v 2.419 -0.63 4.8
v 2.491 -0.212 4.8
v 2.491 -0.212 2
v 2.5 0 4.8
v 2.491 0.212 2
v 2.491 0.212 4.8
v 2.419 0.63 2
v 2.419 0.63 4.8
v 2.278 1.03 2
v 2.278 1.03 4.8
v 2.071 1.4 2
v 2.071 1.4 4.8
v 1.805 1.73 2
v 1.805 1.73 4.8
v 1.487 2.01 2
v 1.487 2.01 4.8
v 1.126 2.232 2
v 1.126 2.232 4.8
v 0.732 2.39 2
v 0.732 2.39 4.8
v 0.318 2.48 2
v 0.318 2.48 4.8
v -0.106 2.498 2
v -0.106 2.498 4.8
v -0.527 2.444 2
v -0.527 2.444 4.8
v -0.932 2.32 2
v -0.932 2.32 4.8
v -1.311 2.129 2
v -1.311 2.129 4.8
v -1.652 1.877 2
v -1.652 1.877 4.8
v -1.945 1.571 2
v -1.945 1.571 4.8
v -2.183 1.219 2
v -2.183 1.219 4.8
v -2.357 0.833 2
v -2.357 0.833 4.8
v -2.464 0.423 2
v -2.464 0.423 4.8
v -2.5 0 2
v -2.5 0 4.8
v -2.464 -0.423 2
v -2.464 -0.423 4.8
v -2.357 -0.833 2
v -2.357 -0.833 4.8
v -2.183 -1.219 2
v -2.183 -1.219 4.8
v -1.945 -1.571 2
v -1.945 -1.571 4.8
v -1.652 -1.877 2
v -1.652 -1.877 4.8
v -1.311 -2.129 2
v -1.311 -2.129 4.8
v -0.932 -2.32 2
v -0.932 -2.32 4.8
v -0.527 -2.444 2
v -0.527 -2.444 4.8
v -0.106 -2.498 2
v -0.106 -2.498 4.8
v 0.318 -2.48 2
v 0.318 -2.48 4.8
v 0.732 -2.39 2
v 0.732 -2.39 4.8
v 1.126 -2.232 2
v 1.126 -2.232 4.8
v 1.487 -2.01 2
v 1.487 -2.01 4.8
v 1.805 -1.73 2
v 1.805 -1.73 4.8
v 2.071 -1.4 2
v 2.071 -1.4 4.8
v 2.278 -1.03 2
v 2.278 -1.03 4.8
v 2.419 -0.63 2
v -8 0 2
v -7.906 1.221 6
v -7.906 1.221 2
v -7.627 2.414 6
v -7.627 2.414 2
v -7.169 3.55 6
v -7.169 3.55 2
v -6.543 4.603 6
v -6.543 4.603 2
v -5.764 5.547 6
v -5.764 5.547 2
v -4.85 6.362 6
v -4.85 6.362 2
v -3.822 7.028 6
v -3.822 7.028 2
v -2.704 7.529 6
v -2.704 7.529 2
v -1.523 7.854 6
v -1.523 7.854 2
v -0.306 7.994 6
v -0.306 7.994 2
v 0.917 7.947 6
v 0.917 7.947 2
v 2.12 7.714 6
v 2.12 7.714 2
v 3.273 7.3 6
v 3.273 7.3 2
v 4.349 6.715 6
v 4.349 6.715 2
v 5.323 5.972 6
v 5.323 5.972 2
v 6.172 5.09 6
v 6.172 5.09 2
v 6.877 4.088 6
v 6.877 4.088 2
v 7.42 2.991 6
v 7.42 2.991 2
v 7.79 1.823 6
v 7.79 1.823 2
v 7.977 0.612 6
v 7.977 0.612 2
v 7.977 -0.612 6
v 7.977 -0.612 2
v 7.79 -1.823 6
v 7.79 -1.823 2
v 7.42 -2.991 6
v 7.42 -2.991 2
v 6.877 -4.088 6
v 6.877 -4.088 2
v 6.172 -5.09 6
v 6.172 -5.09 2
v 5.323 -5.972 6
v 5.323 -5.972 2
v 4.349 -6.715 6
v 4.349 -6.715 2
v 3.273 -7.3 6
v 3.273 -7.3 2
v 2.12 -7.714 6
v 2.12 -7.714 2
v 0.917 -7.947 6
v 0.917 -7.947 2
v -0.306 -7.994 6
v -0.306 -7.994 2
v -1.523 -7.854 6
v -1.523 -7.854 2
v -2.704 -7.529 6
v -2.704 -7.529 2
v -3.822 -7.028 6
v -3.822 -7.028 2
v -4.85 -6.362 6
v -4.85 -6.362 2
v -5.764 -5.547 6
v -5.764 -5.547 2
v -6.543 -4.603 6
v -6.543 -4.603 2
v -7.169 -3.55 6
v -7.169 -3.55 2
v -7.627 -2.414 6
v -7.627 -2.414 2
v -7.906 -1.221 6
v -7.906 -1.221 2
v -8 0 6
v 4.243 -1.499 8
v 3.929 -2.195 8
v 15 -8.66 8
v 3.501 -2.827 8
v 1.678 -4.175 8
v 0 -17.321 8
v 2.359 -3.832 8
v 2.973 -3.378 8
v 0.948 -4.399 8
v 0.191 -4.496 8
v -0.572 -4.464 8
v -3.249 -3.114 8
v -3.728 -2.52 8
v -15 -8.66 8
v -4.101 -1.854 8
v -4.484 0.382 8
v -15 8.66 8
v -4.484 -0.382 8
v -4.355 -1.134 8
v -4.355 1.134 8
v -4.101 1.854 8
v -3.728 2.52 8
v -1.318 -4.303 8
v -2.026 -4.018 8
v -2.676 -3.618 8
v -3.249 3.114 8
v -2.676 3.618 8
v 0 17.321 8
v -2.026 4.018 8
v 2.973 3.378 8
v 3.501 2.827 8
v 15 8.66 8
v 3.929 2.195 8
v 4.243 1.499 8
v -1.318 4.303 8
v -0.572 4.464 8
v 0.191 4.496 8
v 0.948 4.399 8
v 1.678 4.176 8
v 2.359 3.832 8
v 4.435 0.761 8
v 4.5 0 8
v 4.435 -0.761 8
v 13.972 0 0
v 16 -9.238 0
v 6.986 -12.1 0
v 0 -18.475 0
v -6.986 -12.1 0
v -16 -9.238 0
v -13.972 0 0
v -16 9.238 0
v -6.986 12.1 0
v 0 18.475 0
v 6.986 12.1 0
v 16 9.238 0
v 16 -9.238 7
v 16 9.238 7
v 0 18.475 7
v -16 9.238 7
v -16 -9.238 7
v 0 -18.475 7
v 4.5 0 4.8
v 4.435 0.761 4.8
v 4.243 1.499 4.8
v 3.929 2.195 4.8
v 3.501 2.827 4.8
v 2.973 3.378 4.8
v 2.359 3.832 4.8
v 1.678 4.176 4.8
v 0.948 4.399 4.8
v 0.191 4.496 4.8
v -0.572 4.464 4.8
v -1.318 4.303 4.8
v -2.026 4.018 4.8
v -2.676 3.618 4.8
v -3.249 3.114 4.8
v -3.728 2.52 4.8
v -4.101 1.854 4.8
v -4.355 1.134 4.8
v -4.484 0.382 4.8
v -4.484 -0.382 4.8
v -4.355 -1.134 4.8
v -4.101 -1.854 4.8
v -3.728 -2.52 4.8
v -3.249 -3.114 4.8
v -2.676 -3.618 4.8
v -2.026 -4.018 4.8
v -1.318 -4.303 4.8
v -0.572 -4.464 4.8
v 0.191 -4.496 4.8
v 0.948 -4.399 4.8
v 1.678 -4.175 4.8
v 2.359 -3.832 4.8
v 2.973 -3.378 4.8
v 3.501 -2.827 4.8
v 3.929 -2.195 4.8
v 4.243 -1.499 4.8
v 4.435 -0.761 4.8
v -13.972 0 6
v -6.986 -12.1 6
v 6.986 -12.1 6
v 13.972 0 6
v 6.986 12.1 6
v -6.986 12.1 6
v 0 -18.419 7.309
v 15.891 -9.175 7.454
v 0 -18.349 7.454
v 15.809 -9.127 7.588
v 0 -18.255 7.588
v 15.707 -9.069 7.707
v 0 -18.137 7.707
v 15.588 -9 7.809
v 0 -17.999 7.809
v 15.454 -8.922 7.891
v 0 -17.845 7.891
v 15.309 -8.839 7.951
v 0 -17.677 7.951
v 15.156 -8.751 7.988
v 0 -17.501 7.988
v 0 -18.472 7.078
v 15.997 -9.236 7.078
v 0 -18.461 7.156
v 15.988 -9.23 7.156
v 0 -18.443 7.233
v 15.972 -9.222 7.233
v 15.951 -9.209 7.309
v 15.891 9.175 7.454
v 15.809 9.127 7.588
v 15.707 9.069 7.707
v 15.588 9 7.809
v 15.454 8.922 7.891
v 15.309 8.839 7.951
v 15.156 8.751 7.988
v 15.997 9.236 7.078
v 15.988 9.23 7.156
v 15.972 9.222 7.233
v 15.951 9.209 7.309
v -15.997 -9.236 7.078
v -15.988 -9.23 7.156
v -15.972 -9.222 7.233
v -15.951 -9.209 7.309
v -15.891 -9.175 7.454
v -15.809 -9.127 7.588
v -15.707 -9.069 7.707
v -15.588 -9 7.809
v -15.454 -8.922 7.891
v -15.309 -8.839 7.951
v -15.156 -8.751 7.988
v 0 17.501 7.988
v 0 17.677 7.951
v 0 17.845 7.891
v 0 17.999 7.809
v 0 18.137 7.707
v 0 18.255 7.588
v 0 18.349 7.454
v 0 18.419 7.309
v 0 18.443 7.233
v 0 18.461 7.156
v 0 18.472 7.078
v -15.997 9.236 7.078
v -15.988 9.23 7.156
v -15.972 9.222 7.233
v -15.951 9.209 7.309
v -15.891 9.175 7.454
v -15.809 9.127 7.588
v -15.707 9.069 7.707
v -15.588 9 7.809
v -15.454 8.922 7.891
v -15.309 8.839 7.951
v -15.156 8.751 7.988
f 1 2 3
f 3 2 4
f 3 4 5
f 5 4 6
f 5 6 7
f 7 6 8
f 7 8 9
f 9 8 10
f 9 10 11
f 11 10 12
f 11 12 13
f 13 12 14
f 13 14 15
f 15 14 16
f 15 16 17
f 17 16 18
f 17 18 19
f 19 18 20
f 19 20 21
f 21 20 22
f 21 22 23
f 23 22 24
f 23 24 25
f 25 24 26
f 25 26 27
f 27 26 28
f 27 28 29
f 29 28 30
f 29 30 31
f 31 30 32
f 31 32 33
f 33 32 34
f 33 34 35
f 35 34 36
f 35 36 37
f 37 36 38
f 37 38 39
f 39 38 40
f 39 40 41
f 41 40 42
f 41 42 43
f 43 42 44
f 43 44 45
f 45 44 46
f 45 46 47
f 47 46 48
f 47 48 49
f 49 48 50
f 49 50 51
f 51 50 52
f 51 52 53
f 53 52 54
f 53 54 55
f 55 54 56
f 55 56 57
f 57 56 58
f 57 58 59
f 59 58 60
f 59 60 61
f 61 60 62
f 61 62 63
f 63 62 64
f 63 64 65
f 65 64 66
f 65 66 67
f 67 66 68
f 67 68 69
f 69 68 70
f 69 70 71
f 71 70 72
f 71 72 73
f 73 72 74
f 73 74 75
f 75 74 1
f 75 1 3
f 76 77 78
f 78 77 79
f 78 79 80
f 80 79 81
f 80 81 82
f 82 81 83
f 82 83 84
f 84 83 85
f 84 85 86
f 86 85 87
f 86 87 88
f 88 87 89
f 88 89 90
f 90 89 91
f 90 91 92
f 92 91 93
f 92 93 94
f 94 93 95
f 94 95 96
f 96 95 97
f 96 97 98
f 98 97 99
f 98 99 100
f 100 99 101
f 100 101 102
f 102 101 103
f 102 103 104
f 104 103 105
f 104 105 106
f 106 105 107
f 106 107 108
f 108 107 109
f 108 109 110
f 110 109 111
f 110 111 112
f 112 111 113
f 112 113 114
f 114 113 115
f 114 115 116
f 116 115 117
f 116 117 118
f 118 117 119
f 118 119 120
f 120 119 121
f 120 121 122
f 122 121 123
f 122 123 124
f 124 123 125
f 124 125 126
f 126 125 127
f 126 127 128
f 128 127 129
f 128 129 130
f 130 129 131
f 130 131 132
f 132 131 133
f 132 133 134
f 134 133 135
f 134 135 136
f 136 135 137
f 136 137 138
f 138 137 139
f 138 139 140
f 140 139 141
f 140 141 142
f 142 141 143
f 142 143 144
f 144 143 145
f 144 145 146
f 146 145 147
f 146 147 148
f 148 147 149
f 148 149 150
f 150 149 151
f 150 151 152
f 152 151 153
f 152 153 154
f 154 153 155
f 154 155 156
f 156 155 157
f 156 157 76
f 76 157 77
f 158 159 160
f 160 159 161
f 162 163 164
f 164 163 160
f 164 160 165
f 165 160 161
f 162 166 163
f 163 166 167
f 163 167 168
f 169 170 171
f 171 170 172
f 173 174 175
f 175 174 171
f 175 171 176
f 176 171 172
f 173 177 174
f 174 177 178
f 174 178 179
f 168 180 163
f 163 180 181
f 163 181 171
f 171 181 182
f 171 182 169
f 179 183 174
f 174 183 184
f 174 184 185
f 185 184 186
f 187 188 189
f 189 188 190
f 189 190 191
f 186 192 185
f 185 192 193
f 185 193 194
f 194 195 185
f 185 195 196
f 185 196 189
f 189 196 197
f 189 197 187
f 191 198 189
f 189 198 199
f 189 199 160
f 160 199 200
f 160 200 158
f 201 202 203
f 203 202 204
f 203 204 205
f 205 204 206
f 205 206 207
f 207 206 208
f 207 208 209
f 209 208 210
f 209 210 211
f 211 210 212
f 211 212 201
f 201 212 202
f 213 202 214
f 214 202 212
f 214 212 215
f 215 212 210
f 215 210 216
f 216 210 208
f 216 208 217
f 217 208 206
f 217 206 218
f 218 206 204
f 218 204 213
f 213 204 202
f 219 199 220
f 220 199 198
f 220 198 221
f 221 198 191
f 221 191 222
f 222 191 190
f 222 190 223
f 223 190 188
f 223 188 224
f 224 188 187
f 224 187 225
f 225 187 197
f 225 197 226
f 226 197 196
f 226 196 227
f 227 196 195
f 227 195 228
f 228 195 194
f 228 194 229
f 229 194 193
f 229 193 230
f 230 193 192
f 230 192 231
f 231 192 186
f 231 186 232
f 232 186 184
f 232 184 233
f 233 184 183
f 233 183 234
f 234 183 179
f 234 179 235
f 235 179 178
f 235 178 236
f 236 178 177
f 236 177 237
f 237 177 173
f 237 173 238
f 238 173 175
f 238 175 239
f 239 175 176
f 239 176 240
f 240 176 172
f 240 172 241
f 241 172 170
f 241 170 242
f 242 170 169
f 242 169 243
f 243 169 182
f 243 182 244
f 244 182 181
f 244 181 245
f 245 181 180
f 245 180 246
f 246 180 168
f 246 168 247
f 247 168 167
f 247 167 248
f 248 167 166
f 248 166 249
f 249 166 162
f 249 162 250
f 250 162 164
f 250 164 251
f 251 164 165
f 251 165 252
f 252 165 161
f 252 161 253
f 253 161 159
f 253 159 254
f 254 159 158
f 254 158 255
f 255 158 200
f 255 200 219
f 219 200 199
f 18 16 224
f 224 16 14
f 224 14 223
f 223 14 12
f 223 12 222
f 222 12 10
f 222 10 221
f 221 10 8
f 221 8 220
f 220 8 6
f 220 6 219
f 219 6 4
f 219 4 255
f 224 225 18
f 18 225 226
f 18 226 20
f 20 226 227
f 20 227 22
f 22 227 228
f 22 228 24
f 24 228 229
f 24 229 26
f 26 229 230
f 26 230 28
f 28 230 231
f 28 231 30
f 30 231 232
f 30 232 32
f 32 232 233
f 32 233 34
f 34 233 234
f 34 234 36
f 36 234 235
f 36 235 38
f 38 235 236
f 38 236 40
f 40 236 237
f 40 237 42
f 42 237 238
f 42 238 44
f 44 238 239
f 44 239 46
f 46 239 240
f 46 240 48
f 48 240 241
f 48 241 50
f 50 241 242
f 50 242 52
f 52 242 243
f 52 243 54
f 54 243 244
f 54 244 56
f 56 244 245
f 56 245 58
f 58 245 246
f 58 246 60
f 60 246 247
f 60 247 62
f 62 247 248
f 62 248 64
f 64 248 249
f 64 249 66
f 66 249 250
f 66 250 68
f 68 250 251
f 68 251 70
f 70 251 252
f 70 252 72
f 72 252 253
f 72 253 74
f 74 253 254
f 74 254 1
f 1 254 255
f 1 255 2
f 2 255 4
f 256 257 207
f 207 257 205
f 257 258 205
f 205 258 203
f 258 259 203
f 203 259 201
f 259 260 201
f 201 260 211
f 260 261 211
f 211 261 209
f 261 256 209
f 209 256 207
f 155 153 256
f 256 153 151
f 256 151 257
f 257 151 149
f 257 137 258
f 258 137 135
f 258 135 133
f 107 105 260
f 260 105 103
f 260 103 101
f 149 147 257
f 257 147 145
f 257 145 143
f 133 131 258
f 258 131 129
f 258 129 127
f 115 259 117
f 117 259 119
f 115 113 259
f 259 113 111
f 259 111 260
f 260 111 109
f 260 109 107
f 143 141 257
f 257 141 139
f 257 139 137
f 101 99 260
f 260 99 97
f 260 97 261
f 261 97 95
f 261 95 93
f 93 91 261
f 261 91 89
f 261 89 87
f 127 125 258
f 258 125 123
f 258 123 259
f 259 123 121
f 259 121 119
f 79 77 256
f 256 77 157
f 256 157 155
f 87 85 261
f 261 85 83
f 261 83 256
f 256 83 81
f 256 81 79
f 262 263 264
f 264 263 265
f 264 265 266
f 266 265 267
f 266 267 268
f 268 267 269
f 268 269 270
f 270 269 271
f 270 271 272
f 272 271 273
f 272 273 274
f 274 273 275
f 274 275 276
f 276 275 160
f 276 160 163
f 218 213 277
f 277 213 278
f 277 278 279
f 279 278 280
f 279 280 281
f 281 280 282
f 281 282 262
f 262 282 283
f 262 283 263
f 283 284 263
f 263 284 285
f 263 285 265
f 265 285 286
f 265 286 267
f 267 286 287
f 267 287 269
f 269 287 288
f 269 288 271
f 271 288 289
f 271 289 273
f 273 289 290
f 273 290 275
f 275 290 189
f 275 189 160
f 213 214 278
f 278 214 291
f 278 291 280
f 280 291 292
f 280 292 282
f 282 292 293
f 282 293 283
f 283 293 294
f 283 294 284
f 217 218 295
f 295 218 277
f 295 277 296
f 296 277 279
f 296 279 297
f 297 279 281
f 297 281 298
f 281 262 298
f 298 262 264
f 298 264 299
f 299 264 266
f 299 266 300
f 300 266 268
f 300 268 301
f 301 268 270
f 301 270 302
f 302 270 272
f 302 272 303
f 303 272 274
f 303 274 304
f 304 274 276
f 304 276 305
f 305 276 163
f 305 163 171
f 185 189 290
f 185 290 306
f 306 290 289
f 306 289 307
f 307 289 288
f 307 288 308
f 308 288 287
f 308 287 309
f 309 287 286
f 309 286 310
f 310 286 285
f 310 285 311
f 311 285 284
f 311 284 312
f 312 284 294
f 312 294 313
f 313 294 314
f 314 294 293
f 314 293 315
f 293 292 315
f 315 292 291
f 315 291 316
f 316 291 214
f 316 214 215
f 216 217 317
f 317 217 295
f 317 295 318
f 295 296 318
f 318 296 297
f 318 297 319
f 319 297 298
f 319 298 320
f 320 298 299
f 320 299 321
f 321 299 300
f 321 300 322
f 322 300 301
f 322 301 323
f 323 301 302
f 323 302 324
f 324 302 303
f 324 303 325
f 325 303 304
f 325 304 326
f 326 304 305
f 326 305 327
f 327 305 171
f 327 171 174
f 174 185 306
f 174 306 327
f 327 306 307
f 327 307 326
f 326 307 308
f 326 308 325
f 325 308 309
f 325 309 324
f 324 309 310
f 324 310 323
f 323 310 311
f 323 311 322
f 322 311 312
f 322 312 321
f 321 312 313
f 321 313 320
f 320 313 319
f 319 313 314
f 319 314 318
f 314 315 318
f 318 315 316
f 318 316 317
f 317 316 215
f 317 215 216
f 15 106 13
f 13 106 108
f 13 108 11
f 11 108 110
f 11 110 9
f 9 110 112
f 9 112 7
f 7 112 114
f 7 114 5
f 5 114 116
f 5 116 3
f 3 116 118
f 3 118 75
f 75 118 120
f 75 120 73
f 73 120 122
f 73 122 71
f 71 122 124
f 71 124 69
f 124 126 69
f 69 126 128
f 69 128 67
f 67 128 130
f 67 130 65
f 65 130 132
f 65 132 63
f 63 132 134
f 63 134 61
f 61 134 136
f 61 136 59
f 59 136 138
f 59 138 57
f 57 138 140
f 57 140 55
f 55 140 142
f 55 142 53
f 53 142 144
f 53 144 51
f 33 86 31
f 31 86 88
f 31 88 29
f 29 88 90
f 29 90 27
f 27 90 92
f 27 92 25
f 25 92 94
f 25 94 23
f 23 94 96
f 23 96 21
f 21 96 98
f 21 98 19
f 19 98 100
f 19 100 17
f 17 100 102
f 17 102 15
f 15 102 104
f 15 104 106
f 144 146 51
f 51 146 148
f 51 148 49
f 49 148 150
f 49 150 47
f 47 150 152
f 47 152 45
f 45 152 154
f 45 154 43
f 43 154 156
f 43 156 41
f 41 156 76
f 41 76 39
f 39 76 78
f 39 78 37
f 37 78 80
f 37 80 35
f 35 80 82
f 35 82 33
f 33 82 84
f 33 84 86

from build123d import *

# Parameters (mm, degrees)
SKIZZE1_R                       = 2.5
AUFSATZ_LINEAR_AUSTRAGEN1_DEPTH = 8
SKIZZE2_R                       = 4.5
SCHNITT_LINEAR_AUSTRAGEN1_DEPTH = 3.2
SKIZZE3_R                       = 8
SCHNITT_LINEAR_AUSTRAGEN2_DEPTH = 6
VERRUNDUNG1_R                   = 1
SKIZZE10_R                      = 8
SCHNITT_LINEAR_AUSTRAGEN3_DEPTH = 2


with BuildPart() as part:
    # Skizze1 → Aufsatz-Linear austragen1 (new body)
    with BuildSketch(Plane.XY):
        Polygon((16, 9.237604307), (0, 18.475208614), (-16, 9.237604307), (-16, -9.237604307), (0, -18.475208614), (16, -9.237604307), align=None)
        Circle(SKIZZE1_R, mode=Mode.SUBTRACT)
    extrude(amount=AUFSATZ_LINEAR_AUSTRAGEN1_DEPTH)

    # Skizze2 → Schnitt-Linear austragen1 (cut)
    with BuildSketch(Plane.XY.offset(8)):
        Circle(SKIZZE2_R)
    extrude(amount=-SCHNITT_LINEAR_AUSTRAGEN1_DEPTH, mode=Mode.SUBTRACT)

    # Skizze3 → Schnitt-Linear austragen2 (cut)
    with BuildSketch(Plane(origin=(0, 0, 0), x_dir=(-1, 0, 0), z_dir=(0, 0, -1))):
        Polygon((13.971876514, 0), (6.985938257, 12.1), (-6.985938257, 12.1), (-13.971876514, 0), (-6.985938257, -12.1), (6.985938257, -12.1), align=None)
        Circle(SKIZZE3_R, mode=Mode.SUBTRACT)
    extrude(amount=-SCHNITT_LINEAR_AUSTRAGEN2_DEPTH, mode=Mode.SUBTRACT)

    # Verrundung1
    verrundung1_edges = [part.edges().sort_by_distance(p)[0] for p in [
        (-8, 13.856406461, 8),
        (-16, 0, 8),
        (-8, -13.856406461, 8),
        (8, -13.856406461, 8),
        (16, 0, 8),
        (8, 13.856406461, 8),
    ]]
    fillet(verrundung1_edges, radius=VERRUNDUNG1_R)

    # Skizze10 → Schnitt-Linear austragen3 (cut)
    with BuildSketch(Plane(origin=(0, 0, 0), x_dir=(-1, 0, 0), z_dir=(0, 0, -1))):
        Circle(SKIZZE10_R)
    extrude(amount=-SCHNITT_LINEAR_AUSTRAGEN3_DEPTH, mode=Mode.SUBTRACT)


solid = part.part
